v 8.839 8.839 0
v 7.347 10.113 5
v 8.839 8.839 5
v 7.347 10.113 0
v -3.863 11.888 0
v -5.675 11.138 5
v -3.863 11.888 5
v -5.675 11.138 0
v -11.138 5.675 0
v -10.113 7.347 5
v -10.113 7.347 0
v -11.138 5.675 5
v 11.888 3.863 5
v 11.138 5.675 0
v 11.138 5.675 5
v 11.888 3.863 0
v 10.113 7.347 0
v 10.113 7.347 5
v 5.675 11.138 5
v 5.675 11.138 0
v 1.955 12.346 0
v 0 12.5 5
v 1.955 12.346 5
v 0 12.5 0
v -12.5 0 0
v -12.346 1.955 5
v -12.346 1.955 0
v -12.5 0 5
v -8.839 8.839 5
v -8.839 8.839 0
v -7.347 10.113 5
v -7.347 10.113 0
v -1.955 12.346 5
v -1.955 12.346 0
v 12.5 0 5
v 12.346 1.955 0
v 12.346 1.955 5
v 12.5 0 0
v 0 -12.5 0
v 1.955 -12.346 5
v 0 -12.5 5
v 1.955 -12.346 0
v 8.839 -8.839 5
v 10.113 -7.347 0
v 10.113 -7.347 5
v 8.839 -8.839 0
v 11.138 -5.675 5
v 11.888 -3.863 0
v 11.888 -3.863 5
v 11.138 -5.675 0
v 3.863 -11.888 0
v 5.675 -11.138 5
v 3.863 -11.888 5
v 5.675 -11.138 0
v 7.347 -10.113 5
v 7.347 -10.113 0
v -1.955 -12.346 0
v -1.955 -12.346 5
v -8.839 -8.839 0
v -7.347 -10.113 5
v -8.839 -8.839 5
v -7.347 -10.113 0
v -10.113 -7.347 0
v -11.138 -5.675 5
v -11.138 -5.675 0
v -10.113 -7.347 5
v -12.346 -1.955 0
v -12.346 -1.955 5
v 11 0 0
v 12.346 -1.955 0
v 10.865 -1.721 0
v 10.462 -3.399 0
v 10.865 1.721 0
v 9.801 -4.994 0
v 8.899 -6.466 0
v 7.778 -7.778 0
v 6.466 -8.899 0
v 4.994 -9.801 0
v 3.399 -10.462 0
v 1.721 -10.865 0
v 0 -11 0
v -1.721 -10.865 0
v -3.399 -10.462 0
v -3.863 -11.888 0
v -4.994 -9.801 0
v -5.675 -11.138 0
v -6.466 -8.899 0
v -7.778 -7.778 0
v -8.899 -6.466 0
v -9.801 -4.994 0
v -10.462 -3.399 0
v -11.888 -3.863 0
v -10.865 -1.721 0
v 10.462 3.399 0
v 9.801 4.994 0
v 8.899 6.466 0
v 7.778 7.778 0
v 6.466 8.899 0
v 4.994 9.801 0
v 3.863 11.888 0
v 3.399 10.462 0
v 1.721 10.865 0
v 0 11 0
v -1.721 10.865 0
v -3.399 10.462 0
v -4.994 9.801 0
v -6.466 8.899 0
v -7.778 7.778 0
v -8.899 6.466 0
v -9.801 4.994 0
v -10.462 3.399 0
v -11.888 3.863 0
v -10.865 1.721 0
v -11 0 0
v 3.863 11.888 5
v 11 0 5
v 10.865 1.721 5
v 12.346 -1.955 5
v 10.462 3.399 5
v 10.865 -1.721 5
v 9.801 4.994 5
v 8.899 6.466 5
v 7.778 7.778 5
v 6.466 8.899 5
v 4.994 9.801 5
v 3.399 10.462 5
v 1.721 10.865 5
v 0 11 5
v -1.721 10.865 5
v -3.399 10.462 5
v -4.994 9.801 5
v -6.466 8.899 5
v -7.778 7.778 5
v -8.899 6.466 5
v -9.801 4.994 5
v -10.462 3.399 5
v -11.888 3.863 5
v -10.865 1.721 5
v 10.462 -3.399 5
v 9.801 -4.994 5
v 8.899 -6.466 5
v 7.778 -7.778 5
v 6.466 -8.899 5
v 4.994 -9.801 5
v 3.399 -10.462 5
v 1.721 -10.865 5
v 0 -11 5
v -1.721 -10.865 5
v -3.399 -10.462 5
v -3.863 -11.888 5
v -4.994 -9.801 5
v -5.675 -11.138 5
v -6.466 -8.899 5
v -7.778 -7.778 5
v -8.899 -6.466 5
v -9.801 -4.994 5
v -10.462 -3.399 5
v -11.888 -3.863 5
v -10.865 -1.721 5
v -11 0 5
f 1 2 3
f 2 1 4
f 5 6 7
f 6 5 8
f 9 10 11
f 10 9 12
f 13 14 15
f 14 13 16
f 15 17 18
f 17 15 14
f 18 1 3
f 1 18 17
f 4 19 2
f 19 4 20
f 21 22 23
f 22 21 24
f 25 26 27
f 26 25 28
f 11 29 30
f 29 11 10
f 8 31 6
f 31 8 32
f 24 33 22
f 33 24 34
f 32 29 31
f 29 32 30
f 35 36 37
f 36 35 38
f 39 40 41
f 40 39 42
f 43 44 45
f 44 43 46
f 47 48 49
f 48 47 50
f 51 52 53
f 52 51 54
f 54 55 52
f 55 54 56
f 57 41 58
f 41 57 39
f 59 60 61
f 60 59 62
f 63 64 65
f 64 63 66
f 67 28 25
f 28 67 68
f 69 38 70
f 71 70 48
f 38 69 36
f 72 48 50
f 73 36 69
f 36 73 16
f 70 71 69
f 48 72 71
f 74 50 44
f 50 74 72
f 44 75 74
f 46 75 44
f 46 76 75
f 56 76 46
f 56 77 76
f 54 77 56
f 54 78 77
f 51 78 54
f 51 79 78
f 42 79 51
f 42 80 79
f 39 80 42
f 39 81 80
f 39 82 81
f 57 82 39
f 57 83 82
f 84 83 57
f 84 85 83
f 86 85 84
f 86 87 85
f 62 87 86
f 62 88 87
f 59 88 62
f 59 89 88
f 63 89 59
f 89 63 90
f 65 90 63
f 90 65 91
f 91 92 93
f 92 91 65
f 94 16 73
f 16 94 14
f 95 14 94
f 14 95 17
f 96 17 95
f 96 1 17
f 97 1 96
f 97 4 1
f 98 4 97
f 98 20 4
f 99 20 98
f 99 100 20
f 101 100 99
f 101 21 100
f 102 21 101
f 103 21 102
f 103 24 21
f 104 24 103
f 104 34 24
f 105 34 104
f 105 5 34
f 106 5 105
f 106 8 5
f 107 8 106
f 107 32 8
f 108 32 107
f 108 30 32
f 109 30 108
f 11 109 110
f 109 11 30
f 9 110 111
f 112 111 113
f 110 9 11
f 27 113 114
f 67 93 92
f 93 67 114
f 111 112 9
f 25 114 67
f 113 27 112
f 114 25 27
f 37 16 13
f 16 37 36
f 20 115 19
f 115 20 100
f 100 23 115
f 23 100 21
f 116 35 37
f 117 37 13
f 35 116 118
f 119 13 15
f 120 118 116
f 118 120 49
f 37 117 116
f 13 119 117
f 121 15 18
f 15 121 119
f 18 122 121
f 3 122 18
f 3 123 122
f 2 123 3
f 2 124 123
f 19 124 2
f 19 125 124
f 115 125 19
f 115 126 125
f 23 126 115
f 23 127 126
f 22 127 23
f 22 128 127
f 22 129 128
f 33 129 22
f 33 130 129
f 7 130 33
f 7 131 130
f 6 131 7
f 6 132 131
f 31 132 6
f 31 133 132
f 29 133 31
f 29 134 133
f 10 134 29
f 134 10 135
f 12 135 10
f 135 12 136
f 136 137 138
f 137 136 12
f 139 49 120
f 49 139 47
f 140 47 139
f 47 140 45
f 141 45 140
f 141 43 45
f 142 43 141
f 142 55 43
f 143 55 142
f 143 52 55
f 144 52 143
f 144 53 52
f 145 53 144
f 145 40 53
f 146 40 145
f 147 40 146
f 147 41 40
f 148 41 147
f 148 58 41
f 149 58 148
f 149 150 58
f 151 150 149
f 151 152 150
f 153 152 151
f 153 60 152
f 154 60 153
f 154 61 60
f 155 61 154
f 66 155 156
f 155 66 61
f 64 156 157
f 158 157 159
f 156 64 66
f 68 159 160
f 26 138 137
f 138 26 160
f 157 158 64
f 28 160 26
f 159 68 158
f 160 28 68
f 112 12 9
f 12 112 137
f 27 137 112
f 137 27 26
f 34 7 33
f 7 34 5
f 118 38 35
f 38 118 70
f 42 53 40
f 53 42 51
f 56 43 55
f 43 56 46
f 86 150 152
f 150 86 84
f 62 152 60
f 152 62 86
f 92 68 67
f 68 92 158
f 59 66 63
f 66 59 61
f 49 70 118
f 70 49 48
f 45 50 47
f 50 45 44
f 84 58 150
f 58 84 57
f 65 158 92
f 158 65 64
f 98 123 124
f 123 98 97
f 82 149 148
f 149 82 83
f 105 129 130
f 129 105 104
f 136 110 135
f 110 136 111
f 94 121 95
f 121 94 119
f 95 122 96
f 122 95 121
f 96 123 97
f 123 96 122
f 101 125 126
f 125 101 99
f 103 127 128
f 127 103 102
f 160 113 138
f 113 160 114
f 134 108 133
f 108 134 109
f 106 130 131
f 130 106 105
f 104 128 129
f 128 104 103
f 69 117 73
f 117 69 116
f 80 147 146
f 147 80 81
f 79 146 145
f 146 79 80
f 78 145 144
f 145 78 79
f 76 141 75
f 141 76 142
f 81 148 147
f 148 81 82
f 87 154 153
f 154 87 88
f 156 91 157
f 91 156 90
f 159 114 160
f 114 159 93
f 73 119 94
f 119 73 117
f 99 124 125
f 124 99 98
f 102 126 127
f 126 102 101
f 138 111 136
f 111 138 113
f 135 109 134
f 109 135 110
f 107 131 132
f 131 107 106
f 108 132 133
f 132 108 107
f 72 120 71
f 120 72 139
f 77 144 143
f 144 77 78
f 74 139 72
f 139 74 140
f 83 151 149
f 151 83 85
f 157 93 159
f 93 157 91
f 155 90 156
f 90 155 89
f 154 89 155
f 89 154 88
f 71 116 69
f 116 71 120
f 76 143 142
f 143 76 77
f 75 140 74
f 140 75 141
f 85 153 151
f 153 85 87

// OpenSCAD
difference() {
    cylinder(d=25,h=5,$fn=40);
    cylinder(d=22,h=5,$fn=40);
}
